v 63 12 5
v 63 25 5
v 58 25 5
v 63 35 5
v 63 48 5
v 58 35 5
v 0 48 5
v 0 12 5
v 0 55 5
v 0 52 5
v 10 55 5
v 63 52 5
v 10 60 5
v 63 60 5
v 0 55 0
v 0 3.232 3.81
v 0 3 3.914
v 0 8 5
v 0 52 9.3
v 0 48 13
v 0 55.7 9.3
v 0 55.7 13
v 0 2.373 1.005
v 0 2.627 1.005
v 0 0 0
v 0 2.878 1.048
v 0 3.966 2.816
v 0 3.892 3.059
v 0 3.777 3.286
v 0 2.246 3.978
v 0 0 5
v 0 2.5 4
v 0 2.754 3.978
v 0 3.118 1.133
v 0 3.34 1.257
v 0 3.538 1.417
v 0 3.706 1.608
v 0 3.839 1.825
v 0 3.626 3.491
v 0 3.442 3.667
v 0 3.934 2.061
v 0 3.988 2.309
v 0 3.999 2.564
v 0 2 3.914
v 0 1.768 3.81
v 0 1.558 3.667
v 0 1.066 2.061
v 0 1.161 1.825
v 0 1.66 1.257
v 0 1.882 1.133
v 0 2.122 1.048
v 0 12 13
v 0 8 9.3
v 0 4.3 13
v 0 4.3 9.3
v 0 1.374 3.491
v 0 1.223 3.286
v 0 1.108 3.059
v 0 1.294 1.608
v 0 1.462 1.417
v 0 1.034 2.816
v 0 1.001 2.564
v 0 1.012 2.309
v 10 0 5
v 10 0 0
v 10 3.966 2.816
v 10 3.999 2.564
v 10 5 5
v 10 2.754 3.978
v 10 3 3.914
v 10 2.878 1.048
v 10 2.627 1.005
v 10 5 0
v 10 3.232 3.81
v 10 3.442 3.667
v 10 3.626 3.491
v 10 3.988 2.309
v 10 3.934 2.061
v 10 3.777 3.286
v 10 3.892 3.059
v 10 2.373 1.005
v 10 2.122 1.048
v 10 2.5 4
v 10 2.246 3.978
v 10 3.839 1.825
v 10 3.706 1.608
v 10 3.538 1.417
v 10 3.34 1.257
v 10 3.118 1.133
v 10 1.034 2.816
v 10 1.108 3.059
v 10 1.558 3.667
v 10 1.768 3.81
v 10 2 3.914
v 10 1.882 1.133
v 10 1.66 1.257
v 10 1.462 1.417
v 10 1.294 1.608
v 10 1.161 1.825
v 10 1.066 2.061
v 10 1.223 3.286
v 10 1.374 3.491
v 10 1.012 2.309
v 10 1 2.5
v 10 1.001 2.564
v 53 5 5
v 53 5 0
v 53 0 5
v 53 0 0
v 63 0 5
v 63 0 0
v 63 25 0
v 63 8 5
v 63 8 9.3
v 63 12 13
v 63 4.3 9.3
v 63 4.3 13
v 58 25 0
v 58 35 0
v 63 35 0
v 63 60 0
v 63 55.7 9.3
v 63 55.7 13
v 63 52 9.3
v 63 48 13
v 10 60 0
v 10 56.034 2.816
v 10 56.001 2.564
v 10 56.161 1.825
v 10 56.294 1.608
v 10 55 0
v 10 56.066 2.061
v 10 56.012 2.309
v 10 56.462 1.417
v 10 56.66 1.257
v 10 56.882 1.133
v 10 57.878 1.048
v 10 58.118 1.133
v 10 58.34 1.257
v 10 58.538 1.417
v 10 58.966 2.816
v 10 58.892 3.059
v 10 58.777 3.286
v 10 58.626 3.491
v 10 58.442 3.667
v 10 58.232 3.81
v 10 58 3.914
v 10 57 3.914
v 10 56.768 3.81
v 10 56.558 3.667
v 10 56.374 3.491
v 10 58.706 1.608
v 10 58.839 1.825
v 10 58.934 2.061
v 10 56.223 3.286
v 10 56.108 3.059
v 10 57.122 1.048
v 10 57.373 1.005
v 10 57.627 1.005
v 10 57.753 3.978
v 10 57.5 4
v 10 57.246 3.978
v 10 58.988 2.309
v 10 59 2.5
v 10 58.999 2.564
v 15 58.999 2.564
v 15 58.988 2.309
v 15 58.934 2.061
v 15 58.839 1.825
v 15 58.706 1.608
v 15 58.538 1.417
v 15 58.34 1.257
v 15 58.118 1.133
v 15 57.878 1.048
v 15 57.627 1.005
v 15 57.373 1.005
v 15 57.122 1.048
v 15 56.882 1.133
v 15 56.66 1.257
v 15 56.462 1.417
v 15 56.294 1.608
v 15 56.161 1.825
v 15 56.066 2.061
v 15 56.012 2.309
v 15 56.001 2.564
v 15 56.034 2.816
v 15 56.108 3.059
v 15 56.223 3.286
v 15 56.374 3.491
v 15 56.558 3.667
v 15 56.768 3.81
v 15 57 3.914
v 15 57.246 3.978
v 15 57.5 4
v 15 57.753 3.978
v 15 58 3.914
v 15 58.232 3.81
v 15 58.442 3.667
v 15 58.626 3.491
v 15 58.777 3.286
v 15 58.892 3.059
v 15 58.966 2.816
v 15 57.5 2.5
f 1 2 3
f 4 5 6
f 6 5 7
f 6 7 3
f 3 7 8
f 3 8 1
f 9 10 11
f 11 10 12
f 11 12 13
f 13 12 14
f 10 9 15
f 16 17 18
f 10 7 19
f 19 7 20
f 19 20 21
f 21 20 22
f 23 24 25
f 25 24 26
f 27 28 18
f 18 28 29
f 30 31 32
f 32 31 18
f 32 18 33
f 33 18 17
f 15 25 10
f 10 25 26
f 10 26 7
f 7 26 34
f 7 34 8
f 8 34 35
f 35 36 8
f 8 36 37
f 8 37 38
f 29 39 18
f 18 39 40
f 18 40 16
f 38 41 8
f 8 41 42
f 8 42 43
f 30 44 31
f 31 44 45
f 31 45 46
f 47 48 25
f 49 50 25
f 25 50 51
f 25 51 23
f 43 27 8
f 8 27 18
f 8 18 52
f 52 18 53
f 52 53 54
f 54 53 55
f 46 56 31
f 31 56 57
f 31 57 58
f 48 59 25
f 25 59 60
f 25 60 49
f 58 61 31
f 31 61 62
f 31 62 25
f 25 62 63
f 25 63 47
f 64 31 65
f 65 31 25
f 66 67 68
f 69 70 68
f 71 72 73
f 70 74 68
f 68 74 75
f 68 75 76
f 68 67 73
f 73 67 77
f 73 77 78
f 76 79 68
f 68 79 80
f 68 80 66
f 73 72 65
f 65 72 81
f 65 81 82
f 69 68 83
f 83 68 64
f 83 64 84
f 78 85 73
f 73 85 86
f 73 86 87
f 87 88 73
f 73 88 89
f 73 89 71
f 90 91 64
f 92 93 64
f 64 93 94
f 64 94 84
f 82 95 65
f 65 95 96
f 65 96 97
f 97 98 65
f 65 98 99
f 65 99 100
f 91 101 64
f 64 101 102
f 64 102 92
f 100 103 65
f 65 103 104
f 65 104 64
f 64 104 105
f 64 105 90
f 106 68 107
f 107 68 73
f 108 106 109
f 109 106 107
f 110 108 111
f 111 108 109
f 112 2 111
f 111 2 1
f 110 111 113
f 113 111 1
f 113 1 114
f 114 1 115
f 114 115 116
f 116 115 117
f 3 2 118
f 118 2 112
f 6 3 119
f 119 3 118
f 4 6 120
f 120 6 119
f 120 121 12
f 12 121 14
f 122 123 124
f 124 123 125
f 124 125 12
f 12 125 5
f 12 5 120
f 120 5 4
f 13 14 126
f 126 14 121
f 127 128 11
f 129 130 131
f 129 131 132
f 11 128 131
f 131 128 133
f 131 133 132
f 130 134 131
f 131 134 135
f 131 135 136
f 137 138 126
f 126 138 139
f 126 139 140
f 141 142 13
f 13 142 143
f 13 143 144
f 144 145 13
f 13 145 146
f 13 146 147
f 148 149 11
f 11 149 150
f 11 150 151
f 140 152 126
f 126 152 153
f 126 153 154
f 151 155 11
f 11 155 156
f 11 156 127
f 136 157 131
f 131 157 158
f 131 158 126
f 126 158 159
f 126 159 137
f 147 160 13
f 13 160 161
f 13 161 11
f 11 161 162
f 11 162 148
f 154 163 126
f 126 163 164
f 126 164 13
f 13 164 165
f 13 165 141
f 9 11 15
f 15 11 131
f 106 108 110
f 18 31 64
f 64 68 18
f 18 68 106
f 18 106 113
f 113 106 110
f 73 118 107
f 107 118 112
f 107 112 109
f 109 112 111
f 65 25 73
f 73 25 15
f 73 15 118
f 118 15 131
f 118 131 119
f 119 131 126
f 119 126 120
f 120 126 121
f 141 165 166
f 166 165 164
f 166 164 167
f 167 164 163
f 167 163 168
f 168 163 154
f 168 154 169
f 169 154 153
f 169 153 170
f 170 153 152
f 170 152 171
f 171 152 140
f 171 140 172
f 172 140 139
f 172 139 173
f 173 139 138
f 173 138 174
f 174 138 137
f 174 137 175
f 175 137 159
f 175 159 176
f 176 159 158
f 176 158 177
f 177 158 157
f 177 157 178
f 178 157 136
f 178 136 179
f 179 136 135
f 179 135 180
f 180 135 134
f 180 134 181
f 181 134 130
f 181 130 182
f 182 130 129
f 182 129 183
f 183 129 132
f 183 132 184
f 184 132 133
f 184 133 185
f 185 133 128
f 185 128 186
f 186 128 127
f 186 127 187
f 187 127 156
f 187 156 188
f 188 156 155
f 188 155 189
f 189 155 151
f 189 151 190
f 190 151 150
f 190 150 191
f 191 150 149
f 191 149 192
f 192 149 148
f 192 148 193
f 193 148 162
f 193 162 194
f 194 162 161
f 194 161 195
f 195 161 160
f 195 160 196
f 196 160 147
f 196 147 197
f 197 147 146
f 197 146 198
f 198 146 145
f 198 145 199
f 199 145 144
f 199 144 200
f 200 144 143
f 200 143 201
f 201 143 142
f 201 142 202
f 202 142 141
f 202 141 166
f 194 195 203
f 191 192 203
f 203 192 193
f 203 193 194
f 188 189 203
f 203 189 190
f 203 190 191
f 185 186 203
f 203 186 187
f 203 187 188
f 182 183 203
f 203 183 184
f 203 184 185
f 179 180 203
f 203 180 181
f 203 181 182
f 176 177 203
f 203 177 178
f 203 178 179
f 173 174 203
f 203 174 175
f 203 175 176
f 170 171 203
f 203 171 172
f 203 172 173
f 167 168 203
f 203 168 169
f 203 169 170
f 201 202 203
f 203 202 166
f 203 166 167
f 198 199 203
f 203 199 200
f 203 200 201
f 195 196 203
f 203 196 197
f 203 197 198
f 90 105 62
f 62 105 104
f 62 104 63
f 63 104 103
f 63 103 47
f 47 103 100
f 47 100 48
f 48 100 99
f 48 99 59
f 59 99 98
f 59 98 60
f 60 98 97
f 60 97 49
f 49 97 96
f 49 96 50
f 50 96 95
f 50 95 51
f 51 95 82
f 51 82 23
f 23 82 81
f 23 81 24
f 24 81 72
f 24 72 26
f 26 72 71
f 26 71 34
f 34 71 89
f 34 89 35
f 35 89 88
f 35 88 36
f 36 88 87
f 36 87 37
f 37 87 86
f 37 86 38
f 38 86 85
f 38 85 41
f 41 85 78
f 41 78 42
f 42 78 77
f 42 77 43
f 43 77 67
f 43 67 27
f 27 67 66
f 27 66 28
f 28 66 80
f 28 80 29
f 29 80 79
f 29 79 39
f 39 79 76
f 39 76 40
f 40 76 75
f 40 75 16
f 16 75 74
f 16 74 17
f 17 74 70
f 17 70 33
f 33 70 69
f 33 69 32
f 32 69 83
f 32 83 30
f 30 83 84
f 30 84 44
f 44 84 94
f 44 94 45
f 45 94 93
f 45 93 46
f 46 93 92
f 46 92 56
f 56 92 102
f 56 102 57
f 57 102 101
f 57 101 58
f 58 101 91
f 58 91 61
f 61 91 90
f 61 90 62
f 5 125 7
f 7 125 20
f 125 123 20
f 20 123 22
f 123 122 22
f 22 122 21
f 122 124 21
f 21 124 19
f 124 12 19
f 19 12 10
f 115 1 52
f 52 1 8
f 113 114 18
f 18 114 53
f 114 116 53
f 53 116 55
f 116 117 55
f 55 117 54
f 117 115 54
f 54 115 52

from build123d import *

# Parameters (mm, degrees)
BOSS_EXTRU_1_DEPTH      = 5
ESQUISSE5_R             = 1.5
ENL_V_MAT_EXTRU_1_DEPTH = 15
BOSS_EXTRU_2_DEPTH      = 63


with BuildPart() as part:
    # Esquisse1 → Boss.-Extru.1 (new body)
    with BuildSketch(Plane.XY):
        Polygon((63, 35), (58, 35), (58, 25), (63, 25), (63, 0), (53, 0), (53, 5), (10, 5), (10, 0), (0, 0), (0, 55), (10, 55), (10, 60), (63, 60), align=None)
    extrude(amount=BOSS_EXTRU_1_DEPTH)

    # Esquisse5 → Enlèv. mat.-Extru.1 (cut)
    with BuildSketch(Plane.ZY):
        with Locations((2.5, 2.5)):
            Circle(ESQUISSE5_R)
        with Locations((2.5, 57.5)):
            Circle(ESQUISSE5_R)
    extrude(amount=-ENL_V_MAT_EXTRU_1_DEPTH, mode=Mode.SUBTRACT)

    # Esquisse8 → Boss.-Extru.2 (add)
    with BuildSketch(Plane(origin=(63, 0, 0), x_dir=(0, 0, -1), z_dir=(1, 0, 0))):
        Polygon((-5, 52), (-9.3, 52), (-9.3, 55.7), (-13, 55.7), (-13, 48), (-5, 48), align=None)
        Polygon((-5, 12), (-5, 8), (-9.3, 8), (-9.3, 4.3), (-13, 4.3), (-13, 12), align=None)
    extrude(amount=-BOSS_EXTRU_2_DEPTH)


solid = part.part
